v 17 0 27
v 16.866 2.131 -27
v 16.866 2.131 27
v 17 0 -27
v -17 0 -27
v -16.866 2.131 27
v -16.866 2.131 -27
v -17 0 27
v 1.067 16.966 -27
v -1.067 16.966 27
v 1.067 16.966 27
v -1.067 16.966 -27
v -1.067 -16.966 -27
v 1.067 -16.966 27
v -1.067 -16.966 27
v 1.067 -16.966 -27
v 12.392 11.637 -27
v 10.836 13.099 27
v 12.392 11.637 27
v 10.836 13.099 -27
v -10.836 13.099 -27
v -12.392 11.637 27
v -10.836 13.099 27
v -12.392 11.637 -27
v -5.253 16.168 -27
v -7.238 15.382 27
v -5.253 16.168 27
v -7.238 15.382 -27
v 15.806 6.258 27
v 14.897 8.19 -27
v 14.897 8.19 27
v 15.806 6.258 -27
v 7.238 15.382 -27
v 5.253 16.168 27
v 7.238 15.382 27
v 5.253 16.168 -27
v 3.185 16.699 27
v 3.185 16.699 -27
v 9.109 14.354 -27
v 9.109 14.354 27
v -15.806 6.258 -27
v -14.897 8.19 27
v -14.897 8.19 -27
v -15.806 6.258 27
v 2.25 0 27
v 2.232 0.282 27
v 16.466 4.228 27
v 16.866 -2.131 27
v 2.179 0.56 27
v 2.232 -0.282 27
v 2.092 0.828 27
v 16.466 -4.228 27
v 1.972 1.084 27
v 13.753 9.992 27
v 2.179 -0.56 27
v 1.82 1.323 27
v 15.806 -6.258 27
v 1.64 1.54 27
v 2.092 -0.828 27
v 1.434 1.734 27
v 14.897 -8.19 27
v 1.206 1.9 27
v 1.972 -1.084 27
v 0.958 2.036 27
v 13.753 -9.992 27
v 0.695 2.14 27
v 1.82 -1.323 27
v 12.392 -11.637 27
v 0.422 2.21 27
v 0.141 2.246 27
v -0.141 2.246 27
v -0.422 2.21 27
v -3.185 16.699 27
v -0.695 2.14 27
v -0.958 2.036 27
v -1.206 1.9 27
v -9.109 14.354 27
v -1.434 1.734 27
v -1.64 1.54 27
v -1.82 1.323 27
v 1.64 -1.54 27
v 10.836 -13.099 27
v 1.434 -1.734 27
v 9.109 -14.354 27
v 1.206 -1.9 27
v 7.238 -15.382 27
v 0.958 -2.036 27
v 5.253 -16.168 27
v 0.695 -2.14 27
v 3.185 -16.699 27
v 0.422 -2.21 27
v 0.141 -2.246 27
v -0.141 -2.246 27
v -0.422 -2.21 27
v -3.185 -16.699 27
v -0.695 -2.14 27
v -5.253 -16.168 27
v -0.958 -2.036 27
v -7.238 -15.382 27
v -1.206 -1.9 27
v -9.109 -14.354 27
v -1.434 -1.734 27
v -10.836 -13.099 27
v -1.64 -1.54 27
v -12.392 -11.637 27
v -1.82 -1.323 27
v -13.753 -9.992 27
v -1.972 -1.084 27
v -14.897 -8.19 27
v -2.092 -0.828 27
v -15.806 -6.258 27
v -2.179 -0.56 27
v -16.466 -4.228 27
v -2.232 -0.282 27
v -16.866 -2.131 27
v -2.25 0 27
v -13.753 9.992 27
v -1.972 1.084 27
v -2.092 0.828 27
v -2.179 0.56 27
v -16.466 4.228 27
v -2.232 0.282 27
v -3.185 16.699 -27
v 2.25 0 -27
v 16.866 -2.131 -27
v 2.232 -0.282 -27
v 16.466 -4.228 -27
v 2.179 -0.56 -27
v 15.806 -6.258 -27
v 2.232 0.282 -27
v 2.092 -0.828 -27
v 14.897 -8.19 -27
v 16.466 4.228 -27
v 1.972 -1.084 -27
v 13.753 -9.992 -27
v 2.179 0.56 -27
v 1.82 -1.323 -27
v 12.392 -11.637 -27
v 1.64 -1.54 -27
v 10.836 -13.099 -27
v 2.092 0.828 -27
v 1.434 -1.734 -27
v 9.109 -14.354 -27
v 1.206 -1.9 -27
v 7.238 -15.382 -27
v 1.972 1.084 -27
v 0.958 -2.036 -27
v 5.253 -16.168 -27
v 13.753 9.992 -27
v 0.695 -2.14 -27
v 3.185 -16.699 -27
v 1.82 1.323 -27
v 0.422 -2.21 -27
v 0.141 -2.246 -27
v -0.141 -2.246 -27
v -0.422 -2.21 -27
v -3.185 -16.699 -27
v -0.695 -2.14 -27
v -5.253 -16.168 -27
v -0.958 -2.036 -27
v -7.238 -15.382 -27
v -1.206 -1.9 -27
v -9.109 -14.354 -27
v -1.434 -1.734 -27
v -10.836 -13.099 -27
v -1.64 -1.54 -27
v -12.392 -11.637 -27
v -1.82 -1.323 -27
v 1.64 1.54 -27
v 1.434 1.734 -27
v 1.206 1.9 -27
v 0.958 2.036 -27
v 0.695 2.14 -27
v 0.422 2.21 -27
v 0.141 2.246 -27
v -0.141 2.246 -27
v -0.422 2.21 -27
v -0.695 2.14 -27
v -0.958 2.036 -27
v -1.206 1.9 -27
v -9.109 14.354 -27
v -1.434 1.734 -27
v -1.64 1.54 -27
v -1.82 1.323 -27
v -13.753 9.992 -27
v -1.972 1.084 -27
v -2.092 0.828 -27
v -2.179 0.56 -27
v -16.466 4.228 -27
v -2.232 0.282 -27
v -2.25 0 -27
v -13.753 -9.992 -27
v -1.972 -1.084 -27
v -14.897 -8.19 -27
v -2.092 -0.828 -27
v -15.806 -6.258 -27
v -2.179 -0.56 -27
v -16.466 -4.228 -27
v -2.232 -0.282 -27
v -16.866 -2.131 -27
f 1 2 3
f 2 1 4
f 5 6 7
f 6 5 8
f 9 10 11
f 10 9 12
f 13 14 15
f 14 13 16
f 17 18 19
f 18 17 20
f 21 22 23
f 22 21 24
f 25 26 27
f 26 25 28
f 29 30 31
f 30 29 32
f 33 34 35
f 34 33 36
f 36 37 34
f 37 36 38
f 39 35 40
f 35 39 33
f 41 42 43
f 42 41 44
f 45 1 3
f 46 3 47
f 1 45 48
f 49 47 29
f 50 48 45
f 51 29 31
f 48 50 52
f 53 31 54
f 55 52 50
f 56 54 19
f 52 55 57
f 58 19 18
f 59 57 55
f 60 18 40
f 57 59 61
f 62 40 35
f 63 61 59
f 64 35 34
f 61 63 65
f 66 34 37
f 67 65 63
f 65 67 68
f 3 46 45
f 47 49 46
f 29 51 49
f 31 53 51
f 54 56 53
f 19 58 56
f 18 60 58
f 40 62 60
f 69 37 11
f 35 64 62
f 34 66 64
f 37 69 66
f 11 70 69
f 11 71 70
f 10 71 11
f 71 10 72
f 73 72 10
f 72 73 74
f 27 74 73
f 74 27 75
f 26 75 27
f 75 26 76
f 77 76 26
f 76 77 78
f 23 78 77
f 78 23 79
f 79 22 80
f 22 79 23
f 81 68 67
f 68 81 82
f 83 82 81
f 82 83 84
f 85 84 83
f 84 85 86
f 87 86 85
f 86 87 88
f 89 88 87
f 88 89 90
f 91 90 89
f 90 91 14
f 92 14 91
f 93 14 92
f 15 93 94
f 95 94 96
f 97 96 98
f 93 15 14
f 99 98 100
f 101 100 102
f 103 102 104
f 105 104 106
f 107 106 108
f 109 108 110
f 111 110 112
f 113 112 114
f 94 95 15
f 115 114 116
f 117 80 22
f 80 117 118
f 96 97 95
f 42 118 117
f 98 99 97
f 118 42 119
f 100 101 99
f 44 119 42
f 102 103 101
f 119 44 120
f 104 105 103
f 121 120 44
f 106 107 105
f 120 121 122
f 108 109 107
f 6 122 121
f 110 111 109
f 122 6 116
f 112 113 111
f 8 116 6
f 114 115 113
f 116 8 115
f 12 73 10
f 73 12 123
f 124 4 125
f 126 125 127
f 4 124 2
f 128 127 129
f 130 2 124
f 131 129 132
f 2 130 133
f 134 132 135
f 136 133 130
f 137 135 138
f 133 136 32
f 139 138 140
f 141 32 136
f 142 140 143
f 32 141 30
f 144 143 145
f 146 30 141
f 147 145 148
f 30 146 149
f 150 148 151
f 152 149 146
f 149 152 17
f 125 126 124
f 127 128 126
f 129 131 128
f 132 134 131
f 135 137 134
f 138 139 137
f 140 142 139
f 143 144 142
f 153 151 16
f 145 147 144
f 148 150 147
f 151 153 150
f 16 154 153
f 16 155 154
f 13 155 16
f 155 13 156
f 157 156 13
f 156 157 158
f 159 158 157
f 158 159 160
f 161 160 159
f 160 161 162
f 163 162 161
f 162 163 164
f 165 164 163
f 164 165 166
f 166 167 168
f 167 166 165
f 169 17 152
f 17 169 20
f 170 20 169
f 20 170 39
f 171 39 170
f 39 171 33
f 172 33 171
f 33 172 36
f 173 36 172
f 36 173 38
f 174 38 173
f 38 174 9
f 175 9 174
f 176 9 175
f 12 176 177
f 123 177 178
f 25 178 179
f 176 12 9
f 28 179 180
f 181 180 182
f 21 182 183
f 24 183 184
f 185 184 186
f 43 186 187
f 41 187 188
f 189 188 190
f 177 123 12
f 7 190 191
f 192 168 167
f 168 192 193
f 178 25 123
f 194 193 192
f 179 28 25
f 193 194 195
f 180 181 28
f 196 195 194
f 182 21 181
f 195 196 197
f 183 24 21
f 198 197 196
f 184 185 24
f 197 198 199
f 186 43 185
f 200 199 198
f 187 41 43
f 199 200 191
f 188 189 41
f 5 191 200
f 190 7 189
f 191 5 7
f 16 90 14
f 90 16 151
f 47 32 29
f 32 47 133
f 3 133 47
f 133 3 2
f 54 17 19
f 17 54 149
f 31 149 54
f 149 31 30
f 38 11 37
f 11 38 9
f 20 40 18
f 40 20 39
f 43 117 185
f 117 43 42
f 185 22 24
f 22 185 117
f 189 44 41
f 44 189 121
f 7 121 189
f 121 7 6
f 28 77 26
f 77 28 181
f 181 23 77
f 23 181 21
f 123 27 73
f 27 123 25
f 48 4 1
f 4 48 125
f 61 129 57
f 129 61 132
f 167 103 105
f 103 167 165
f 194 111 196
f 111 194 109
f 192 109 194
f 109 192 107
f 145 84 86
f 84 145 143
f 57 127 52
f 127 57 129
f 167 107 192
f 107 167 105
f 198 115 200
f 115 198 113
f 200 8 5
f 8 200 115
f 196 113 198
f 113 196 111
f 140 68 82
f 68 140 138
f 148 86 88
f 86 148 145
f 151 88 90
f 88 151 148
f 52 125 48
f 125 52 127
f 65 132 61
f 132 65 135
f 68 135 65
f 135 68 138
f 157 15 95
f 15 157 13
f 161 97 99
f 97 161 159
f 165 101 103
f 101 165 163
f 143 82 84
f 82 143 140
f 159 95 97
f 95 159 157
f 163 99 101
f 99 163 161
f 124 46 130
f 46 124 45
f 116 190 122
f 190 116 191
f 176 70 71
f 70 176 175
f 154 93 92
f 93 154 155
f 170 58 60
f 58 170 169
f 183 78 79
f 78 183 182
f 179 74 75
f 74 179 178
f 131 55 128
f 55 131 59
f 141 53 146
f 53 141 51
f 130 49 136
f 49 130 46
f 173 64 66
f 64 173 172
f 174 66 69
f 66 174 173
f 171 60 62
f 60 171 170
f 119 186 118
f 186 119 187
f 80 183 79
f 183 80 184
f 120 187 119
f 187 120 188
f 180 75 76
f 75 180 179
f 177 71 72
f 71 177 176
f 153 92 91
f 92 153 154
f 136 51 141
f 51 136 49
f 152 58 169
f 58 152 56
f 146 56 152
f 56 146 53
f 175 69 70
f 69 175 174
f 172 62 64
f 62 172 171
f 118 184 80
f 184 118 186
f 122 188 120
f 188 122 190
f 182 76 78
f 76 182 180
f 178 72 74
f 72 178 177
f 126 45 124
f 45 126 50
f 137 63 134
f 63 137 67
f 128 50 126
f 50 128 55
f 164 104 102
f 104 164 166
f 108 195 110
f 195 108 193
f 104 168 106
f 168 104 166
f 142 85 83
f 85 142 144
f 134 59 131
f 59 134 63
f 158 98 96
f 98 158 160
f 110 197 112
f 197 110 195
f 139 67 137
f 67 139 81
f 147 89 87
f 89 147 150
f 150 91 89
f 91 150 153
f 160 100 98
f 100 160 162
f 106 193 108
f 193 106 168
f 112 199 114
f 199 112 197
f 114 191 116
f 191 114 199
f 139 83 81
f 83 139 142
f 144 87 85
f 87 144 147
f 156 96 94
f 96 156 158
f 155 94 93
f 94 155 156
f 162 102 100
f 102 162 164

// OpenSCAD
$fn = 50;


difference() {
	union() {
		translate(v = [0, 0, -27.0000000000]) {
			cylinder(h = 54, r = 17.0000000000);
		}
	}
	union() {
		translate(v = [0, 0, -100.0000000000]) {
			cylinder(h = 200, r = 2.2500000000);
		}
	}
}
